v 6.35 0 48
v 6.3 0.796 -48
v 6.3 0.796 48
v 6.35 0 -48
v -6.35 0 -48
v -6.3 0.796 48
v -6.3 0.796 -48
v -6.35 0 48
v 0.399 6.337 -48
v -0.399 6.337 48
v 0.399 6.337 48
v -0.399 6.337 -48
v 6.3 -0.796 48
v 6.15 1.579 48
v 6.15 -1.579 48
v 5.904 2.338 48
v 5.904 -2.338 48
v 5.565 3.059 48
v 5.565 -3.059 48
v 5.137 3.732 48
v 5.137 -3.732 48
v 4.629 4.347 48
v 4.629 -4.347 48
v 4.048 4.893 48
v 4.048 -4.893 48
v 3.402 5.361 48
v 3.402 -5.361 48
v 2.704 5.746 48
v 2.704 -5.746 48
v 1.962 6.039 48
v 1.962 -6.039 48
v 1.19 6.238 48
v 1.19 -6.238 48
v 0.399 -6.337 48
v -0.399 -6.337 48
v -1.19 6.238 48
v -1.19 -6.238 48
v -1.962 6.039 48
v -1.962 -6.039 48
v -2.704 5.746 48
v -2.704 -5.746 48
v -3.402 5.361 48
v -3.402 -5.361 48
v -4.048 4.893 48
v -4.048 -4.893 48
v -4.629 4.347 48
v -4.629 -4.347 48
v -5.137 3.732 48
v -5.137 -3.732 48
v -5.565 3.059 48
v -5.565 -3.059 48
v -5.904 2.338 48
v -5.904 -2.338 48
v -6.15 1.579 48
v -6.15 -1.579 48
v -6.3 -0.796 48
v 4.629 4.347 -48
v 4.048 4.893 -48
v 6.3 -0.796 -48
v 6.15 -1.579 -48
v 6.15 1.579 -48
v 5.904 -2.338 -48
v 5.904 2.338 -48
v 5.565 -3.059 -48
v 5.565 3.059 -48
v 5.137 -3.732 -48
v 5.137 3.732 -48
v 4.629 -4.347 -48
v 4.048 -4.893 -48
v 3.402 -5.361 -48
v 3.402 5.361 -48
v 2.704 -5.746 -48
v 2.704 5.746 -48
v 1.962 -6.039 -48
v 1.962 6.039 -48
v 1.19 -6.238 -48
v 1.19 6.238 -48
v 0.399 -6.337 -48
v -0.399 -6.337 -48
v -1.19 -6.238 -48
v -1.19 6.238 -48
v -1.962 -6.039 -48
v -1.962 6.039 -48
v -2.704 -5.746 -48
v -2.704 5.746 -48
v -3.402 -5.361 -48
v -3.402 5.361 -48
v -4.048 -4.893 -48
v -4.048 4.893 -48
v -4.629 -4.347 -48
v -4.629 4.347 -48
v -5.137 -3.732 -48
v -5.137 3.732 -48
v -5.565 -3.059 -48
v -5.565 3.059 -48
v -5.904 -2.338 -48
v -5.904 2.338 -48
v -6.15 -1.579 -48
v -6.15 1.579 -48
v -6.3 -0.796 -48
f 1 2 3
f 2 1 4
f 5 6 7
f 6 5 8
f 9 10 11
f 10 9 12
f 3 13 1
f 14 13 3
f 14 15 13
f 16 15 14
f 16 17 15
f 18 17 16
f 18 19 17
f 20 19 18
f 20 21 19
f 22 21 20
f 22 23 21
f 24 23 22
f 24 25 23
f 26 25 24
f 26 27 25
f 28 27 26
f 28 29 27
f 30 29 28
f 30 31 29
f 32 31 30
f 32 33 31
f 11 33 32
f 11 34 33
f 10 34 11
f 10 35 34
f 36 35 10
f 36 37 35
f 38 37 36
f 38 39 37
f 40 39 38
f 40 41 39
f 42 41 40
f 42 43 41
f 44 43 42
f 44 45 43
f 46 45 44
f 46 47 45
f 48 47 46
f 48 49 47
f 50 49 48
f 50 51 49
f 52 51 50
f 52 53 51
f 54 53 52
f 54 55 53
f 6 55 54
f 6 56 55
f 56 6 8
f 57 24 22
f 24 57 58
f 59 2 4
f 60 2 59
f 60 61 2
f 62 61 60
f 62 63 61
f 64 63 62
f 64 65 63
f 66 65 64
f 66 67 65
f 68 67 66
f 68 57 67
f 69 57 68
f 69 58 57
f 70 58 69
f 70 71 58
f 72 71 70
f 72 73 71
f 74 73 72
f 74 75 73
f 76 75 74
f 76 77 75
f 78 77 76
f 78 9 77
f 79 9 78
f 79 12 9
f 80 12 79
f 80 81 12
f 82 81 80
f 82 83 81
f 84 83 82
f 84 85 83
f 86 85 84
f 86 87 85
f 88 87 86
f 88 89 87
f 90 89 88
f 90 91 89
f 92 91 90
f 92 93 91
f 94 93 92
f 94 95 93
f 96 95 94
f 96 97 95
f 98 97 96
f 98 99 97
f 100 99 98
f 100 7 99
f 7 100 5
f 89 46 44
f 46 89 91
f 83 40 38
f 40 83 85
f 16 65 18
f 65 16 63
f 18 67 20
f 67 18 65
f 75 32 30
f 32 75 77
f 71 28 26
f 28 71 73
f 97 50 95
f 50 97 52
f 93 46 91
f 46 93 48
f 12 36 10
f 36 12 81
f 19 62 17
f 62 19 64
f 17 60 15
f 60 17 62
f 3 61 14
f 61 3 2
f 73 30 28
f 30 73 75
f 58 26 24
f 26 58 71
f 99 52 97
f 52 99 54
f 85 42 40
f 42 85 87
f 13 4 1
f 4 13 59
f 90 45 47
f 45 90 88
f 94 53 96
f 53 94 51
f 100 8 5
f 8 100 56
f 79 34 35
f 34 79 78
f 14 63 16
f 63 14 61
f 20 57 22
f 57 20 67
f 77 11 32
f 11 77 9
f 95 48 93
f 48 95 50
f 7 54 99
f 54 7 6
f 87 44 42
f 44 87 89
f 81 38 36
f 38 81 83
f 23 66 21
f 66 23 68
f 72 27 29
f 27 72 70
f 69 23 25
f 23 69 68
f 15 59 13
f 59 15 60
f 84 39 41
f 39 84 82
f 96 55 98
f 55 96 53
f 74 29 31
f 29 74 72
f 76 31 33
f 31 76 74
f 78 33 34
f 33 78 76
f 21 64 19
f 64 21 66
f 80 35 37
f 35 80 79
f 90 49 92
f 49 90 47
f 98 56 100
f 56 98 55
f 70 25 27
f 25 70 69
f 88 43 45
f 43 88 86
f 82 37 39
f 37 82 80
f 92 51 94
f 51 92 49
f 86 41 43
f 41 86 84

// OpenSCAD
$fn = 50;


difference() {
	union() {
		translate(v = [0, 0, -48.0000000000]) {
			cylinder(h = 96, r = 6.3500000000);
		}
	}
	union() {
		translate(v = [0, 0, -100.0000000000]) {
			cylinder(h = 200, r = 0);
		}
	}
}
